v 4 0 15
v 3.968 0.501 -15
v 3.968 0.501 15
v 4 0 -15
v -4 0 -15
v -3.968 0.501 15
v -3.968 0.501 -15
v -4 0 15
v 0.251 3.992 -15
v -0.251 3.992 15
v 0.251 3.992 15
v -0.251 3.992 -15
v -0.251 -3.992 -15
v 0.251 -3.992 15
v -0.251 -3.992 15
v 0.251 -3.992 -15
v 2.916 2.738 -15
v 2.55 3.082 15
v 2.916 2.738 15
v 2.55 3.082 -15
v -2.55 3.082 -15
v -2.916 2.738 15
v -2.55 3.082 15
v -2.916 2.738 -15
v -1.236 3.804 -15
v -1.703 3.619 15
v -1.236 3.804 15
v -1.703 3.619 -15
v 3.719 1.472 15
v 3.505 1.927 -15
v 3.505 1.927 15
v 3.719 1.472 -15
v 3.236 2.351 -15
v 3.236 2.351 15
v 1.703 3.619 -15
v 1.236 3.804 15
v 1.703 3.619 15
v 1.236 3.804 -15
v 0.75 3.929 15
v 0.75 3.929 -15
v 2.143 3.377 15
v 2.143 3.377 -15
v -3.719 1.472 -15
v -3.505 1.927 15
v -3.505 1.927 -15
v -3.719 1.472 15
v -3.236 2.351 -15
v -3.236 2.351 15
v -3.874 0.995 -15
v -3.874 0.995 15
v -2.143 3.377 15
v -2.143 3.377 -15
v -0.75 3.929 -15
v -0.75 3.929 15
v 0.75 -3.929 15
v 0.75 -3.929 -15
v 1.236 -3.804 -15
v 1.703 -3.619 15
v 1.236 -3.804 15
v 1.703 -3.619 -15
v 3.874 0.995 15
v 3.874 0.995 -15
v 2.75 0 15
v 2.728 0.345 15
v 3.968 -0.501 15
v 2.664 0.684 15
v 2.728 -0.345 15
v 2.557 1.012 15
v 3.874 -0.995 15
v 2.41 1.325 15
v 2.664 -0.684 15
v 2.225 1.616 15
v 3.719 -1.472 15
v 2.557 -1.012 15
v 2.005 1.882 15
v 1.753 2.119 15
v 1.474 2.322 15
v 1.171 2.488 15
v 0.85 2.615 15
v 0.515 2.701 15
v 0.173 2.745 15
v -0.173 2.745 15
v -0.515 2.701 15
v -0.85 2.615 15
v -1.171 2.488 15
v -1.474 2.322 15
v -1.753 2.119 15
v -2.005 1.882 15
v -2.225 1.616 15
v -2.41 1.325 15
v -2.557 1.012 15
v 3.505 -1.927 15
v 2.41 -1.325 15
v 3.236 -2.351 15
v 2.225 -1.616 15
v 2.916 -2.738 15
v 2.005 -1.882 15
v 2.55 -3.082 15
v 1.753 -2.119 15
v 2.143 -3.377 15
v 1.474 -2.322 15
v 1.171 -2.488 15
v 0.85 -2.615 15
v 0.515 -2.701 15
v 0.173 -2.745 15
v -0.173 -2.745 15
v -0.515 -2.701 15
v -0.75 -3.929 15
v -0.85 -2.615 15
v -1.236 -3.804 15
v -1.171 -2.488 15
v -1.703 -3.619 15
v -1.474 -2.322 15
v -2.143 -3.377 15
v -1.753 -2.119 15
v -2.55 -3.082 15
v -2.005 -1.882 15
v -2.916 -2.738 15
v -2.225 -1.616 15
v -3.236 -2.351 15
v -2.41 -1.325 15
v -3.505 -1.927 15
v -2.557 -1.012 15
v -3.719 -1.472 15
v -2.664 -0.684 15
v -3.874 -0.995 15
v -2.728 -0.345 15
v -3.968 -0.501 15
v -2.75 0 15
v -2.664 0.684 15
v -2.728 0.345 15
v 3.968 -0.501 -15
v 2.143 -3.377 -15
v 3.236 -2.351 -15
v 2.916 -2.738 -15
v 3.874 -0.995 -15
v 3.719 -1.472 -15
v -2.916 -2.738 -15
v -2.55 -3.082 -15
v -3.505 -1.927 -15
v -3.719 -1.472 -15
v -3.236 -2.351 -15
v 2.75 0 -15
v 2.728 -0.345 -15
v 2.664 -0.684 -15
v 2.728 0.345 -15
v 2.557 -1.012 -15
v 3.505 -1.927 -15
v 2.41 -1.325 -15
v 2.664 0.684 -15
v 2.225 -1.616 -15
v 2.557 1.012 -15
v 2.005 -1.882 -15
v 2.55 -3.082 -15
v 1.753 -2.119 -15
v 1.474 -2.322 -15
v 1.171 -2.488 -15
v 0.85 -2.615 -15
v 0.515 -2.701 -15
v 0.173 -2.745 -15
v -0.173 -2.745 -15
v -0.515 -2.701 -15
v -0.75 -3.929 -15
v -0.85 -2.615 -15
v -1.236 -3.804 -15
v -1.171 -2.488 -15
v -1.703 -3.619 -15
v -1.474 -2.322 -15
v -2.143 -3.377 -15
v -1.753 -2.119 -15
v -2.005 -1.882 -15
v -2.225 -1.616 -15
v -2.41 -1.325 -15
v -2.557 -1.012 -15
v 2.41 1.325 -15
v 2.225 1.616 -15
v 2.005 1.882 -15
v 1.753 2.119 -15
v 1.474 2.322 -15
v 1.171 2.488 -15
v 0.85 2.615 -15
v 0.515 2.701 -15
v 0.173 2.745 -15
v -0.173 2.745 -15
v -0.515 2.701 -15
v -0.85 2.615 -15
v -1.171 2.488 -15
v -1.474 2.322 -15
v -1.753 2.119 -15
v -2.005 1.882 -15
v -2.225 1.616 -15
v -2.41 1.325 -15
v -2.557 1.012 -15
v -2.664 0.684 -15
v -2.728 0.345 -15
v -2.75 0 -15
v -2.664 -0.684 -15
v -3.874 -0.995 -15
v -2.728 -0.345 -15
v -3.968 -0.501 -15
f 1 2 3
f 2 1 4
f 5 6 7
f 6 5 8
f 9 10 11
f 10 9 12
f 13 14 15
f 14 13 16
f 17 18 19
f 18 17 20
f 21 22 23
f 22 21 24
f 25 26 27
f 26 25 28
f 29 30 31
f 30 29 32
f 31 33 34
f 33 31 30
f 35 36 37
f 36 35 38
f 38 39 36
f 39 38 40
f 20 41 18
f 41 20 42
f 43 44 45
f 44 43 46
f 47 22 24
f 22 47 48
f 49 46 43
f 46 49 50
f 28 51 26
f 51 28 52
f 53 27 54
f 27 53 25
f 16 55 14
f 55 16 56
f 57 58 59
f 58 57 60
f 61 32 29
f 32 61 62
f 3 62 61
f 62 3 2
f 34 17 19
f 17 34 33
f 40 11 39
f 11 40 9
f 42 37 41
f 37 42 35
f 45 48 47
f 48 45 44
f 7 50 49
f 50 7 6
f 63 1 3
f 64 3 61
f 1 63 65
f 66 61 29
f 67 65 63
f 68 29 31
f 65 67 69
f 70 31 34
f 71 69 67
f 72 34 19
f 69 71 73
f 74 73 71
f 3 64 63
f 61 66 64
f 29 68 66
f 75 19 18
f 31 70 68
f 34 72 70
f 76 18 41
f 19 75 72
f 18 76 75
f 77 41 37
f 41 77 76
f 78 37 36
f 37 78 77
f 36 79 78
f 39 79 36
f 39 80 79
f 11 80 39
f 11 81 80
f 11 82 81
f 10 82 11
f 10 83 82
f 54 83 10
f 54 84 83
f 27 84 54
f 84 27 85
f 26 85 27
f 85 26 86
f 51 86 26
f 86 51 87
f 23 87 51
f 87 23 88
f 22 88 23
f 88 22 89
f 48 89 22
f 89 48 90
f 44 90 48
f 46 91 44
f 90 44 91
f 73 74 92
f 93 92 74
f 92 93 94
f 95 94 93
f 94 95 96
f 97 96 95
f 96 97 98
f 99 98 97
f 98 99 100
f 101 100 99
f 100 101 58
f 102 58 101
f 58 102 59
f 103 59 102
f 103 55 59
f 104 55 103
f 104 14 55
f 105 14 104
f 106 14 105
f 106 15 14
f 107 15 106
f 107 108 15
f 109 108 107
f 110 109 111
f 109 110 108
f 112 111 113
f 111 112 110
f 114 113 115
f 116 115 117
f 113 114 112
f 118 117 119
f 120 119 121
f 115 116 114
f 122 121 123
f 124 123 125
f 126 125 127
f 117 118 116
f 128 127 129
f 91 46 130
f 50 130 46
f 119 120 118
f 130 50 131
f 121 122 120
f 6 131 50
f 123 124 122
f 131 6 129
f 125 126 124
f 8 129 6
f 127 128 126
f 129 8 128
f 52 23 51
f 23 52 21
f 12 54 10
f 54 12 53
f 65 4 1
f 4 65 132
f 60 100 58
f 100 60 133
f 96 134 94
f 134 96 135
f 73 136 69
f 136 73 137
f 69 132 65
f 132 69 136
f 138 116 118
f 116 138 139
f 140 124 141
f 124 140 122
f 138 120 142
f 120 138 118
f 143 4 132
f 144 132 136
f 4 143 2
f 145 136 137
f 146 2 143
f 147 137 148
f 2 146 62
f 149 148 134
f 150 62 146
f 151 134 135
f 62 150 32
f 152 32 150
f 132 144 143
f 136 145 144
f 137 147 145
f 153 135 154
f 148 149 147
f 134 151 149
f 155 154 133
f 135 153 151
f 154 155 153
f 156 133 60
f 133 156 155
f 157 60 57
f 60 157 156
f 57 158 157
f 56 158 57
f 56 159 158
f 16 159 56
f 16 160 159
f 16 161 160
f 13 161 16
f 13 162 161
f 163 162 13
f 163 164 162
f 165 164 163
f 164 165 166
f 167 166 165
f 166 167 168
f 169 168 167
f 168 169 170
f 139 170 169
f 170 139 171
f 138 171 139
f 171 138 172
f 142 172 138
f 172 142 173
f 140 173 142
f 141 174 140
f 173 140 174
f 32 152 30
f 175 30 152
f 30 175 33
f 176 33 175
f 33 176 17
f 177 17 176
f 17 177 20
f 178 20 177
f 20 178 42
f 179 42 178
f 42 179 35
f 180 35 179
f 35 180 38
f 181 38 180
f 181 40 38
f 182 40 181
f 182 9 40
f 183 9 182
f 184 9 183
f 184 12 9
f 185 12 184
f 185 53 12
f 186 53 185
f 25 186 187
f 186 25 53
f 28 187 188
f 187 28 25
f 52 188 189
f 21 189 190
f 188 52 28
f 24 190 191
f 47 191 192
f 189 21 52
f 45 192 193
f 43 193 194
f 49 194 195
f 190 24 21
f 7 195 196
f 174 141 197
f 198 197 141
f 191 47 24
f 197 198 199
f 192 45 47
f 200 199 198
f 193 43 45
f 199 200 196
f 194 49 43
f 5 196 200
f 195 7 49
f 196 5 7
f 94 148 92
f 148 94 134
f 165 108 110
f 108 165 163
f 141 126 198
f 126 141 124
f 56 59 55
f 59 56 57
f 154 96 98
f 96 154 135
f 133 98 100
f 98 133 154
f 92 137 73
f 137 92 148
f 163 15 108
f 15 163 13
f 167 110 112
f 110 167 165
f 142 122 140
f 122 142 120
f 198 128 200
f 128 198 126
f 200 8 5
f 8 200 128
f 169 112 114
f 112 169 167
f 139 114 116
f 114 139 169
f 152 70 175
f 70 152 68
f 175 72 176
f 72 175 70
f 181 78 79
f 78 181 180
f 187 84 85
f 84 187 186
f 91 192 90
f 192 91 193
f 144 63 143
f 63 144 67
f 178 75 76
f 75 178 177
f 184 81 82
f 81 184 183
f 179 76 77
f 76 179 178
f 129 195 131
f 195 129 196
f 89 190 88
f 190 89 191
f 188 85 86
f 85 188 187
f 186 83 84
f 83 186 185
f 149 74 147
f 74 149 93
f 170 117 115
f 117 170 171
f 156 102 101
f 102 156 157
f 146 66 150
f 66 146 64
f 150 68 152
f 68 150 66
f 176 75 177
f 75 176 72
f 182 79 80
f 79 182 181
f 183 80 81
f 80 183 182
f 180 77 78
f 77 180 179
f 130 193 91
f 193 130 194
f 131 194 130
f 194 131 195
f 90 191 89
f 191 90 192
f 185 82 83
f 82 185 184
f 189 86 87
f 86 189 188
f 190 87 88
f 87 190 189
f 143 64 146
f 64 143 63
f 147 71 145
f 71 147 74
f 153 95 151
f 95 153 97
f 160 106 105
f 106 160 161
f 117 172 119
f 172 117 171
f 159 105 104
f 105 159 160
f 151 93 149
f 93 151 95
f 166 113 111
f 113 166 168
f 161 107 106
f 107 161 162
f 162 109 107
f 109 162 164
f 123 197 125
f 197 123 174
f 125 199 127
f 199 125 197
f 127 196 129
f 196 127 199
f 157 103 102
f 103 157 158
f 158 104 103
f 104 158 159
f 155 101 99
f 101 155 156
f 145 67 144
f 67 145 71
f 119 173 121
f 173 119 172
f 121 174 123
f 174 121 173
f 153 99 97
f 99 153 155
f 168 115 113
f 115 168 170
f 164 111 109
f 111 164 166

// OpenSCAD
$fn = 50;


difference() {
	union() {
		translate(v = [0, 0, -15.0000000000]) {
			cylinder(h = 30, r = 4.0000000000);
		}
	}
	union() {
		translate(v = [0, 0, -100.0000000000]) {
			cylinder(h = 200, r = 2.7500000000);
		}
	}
}
